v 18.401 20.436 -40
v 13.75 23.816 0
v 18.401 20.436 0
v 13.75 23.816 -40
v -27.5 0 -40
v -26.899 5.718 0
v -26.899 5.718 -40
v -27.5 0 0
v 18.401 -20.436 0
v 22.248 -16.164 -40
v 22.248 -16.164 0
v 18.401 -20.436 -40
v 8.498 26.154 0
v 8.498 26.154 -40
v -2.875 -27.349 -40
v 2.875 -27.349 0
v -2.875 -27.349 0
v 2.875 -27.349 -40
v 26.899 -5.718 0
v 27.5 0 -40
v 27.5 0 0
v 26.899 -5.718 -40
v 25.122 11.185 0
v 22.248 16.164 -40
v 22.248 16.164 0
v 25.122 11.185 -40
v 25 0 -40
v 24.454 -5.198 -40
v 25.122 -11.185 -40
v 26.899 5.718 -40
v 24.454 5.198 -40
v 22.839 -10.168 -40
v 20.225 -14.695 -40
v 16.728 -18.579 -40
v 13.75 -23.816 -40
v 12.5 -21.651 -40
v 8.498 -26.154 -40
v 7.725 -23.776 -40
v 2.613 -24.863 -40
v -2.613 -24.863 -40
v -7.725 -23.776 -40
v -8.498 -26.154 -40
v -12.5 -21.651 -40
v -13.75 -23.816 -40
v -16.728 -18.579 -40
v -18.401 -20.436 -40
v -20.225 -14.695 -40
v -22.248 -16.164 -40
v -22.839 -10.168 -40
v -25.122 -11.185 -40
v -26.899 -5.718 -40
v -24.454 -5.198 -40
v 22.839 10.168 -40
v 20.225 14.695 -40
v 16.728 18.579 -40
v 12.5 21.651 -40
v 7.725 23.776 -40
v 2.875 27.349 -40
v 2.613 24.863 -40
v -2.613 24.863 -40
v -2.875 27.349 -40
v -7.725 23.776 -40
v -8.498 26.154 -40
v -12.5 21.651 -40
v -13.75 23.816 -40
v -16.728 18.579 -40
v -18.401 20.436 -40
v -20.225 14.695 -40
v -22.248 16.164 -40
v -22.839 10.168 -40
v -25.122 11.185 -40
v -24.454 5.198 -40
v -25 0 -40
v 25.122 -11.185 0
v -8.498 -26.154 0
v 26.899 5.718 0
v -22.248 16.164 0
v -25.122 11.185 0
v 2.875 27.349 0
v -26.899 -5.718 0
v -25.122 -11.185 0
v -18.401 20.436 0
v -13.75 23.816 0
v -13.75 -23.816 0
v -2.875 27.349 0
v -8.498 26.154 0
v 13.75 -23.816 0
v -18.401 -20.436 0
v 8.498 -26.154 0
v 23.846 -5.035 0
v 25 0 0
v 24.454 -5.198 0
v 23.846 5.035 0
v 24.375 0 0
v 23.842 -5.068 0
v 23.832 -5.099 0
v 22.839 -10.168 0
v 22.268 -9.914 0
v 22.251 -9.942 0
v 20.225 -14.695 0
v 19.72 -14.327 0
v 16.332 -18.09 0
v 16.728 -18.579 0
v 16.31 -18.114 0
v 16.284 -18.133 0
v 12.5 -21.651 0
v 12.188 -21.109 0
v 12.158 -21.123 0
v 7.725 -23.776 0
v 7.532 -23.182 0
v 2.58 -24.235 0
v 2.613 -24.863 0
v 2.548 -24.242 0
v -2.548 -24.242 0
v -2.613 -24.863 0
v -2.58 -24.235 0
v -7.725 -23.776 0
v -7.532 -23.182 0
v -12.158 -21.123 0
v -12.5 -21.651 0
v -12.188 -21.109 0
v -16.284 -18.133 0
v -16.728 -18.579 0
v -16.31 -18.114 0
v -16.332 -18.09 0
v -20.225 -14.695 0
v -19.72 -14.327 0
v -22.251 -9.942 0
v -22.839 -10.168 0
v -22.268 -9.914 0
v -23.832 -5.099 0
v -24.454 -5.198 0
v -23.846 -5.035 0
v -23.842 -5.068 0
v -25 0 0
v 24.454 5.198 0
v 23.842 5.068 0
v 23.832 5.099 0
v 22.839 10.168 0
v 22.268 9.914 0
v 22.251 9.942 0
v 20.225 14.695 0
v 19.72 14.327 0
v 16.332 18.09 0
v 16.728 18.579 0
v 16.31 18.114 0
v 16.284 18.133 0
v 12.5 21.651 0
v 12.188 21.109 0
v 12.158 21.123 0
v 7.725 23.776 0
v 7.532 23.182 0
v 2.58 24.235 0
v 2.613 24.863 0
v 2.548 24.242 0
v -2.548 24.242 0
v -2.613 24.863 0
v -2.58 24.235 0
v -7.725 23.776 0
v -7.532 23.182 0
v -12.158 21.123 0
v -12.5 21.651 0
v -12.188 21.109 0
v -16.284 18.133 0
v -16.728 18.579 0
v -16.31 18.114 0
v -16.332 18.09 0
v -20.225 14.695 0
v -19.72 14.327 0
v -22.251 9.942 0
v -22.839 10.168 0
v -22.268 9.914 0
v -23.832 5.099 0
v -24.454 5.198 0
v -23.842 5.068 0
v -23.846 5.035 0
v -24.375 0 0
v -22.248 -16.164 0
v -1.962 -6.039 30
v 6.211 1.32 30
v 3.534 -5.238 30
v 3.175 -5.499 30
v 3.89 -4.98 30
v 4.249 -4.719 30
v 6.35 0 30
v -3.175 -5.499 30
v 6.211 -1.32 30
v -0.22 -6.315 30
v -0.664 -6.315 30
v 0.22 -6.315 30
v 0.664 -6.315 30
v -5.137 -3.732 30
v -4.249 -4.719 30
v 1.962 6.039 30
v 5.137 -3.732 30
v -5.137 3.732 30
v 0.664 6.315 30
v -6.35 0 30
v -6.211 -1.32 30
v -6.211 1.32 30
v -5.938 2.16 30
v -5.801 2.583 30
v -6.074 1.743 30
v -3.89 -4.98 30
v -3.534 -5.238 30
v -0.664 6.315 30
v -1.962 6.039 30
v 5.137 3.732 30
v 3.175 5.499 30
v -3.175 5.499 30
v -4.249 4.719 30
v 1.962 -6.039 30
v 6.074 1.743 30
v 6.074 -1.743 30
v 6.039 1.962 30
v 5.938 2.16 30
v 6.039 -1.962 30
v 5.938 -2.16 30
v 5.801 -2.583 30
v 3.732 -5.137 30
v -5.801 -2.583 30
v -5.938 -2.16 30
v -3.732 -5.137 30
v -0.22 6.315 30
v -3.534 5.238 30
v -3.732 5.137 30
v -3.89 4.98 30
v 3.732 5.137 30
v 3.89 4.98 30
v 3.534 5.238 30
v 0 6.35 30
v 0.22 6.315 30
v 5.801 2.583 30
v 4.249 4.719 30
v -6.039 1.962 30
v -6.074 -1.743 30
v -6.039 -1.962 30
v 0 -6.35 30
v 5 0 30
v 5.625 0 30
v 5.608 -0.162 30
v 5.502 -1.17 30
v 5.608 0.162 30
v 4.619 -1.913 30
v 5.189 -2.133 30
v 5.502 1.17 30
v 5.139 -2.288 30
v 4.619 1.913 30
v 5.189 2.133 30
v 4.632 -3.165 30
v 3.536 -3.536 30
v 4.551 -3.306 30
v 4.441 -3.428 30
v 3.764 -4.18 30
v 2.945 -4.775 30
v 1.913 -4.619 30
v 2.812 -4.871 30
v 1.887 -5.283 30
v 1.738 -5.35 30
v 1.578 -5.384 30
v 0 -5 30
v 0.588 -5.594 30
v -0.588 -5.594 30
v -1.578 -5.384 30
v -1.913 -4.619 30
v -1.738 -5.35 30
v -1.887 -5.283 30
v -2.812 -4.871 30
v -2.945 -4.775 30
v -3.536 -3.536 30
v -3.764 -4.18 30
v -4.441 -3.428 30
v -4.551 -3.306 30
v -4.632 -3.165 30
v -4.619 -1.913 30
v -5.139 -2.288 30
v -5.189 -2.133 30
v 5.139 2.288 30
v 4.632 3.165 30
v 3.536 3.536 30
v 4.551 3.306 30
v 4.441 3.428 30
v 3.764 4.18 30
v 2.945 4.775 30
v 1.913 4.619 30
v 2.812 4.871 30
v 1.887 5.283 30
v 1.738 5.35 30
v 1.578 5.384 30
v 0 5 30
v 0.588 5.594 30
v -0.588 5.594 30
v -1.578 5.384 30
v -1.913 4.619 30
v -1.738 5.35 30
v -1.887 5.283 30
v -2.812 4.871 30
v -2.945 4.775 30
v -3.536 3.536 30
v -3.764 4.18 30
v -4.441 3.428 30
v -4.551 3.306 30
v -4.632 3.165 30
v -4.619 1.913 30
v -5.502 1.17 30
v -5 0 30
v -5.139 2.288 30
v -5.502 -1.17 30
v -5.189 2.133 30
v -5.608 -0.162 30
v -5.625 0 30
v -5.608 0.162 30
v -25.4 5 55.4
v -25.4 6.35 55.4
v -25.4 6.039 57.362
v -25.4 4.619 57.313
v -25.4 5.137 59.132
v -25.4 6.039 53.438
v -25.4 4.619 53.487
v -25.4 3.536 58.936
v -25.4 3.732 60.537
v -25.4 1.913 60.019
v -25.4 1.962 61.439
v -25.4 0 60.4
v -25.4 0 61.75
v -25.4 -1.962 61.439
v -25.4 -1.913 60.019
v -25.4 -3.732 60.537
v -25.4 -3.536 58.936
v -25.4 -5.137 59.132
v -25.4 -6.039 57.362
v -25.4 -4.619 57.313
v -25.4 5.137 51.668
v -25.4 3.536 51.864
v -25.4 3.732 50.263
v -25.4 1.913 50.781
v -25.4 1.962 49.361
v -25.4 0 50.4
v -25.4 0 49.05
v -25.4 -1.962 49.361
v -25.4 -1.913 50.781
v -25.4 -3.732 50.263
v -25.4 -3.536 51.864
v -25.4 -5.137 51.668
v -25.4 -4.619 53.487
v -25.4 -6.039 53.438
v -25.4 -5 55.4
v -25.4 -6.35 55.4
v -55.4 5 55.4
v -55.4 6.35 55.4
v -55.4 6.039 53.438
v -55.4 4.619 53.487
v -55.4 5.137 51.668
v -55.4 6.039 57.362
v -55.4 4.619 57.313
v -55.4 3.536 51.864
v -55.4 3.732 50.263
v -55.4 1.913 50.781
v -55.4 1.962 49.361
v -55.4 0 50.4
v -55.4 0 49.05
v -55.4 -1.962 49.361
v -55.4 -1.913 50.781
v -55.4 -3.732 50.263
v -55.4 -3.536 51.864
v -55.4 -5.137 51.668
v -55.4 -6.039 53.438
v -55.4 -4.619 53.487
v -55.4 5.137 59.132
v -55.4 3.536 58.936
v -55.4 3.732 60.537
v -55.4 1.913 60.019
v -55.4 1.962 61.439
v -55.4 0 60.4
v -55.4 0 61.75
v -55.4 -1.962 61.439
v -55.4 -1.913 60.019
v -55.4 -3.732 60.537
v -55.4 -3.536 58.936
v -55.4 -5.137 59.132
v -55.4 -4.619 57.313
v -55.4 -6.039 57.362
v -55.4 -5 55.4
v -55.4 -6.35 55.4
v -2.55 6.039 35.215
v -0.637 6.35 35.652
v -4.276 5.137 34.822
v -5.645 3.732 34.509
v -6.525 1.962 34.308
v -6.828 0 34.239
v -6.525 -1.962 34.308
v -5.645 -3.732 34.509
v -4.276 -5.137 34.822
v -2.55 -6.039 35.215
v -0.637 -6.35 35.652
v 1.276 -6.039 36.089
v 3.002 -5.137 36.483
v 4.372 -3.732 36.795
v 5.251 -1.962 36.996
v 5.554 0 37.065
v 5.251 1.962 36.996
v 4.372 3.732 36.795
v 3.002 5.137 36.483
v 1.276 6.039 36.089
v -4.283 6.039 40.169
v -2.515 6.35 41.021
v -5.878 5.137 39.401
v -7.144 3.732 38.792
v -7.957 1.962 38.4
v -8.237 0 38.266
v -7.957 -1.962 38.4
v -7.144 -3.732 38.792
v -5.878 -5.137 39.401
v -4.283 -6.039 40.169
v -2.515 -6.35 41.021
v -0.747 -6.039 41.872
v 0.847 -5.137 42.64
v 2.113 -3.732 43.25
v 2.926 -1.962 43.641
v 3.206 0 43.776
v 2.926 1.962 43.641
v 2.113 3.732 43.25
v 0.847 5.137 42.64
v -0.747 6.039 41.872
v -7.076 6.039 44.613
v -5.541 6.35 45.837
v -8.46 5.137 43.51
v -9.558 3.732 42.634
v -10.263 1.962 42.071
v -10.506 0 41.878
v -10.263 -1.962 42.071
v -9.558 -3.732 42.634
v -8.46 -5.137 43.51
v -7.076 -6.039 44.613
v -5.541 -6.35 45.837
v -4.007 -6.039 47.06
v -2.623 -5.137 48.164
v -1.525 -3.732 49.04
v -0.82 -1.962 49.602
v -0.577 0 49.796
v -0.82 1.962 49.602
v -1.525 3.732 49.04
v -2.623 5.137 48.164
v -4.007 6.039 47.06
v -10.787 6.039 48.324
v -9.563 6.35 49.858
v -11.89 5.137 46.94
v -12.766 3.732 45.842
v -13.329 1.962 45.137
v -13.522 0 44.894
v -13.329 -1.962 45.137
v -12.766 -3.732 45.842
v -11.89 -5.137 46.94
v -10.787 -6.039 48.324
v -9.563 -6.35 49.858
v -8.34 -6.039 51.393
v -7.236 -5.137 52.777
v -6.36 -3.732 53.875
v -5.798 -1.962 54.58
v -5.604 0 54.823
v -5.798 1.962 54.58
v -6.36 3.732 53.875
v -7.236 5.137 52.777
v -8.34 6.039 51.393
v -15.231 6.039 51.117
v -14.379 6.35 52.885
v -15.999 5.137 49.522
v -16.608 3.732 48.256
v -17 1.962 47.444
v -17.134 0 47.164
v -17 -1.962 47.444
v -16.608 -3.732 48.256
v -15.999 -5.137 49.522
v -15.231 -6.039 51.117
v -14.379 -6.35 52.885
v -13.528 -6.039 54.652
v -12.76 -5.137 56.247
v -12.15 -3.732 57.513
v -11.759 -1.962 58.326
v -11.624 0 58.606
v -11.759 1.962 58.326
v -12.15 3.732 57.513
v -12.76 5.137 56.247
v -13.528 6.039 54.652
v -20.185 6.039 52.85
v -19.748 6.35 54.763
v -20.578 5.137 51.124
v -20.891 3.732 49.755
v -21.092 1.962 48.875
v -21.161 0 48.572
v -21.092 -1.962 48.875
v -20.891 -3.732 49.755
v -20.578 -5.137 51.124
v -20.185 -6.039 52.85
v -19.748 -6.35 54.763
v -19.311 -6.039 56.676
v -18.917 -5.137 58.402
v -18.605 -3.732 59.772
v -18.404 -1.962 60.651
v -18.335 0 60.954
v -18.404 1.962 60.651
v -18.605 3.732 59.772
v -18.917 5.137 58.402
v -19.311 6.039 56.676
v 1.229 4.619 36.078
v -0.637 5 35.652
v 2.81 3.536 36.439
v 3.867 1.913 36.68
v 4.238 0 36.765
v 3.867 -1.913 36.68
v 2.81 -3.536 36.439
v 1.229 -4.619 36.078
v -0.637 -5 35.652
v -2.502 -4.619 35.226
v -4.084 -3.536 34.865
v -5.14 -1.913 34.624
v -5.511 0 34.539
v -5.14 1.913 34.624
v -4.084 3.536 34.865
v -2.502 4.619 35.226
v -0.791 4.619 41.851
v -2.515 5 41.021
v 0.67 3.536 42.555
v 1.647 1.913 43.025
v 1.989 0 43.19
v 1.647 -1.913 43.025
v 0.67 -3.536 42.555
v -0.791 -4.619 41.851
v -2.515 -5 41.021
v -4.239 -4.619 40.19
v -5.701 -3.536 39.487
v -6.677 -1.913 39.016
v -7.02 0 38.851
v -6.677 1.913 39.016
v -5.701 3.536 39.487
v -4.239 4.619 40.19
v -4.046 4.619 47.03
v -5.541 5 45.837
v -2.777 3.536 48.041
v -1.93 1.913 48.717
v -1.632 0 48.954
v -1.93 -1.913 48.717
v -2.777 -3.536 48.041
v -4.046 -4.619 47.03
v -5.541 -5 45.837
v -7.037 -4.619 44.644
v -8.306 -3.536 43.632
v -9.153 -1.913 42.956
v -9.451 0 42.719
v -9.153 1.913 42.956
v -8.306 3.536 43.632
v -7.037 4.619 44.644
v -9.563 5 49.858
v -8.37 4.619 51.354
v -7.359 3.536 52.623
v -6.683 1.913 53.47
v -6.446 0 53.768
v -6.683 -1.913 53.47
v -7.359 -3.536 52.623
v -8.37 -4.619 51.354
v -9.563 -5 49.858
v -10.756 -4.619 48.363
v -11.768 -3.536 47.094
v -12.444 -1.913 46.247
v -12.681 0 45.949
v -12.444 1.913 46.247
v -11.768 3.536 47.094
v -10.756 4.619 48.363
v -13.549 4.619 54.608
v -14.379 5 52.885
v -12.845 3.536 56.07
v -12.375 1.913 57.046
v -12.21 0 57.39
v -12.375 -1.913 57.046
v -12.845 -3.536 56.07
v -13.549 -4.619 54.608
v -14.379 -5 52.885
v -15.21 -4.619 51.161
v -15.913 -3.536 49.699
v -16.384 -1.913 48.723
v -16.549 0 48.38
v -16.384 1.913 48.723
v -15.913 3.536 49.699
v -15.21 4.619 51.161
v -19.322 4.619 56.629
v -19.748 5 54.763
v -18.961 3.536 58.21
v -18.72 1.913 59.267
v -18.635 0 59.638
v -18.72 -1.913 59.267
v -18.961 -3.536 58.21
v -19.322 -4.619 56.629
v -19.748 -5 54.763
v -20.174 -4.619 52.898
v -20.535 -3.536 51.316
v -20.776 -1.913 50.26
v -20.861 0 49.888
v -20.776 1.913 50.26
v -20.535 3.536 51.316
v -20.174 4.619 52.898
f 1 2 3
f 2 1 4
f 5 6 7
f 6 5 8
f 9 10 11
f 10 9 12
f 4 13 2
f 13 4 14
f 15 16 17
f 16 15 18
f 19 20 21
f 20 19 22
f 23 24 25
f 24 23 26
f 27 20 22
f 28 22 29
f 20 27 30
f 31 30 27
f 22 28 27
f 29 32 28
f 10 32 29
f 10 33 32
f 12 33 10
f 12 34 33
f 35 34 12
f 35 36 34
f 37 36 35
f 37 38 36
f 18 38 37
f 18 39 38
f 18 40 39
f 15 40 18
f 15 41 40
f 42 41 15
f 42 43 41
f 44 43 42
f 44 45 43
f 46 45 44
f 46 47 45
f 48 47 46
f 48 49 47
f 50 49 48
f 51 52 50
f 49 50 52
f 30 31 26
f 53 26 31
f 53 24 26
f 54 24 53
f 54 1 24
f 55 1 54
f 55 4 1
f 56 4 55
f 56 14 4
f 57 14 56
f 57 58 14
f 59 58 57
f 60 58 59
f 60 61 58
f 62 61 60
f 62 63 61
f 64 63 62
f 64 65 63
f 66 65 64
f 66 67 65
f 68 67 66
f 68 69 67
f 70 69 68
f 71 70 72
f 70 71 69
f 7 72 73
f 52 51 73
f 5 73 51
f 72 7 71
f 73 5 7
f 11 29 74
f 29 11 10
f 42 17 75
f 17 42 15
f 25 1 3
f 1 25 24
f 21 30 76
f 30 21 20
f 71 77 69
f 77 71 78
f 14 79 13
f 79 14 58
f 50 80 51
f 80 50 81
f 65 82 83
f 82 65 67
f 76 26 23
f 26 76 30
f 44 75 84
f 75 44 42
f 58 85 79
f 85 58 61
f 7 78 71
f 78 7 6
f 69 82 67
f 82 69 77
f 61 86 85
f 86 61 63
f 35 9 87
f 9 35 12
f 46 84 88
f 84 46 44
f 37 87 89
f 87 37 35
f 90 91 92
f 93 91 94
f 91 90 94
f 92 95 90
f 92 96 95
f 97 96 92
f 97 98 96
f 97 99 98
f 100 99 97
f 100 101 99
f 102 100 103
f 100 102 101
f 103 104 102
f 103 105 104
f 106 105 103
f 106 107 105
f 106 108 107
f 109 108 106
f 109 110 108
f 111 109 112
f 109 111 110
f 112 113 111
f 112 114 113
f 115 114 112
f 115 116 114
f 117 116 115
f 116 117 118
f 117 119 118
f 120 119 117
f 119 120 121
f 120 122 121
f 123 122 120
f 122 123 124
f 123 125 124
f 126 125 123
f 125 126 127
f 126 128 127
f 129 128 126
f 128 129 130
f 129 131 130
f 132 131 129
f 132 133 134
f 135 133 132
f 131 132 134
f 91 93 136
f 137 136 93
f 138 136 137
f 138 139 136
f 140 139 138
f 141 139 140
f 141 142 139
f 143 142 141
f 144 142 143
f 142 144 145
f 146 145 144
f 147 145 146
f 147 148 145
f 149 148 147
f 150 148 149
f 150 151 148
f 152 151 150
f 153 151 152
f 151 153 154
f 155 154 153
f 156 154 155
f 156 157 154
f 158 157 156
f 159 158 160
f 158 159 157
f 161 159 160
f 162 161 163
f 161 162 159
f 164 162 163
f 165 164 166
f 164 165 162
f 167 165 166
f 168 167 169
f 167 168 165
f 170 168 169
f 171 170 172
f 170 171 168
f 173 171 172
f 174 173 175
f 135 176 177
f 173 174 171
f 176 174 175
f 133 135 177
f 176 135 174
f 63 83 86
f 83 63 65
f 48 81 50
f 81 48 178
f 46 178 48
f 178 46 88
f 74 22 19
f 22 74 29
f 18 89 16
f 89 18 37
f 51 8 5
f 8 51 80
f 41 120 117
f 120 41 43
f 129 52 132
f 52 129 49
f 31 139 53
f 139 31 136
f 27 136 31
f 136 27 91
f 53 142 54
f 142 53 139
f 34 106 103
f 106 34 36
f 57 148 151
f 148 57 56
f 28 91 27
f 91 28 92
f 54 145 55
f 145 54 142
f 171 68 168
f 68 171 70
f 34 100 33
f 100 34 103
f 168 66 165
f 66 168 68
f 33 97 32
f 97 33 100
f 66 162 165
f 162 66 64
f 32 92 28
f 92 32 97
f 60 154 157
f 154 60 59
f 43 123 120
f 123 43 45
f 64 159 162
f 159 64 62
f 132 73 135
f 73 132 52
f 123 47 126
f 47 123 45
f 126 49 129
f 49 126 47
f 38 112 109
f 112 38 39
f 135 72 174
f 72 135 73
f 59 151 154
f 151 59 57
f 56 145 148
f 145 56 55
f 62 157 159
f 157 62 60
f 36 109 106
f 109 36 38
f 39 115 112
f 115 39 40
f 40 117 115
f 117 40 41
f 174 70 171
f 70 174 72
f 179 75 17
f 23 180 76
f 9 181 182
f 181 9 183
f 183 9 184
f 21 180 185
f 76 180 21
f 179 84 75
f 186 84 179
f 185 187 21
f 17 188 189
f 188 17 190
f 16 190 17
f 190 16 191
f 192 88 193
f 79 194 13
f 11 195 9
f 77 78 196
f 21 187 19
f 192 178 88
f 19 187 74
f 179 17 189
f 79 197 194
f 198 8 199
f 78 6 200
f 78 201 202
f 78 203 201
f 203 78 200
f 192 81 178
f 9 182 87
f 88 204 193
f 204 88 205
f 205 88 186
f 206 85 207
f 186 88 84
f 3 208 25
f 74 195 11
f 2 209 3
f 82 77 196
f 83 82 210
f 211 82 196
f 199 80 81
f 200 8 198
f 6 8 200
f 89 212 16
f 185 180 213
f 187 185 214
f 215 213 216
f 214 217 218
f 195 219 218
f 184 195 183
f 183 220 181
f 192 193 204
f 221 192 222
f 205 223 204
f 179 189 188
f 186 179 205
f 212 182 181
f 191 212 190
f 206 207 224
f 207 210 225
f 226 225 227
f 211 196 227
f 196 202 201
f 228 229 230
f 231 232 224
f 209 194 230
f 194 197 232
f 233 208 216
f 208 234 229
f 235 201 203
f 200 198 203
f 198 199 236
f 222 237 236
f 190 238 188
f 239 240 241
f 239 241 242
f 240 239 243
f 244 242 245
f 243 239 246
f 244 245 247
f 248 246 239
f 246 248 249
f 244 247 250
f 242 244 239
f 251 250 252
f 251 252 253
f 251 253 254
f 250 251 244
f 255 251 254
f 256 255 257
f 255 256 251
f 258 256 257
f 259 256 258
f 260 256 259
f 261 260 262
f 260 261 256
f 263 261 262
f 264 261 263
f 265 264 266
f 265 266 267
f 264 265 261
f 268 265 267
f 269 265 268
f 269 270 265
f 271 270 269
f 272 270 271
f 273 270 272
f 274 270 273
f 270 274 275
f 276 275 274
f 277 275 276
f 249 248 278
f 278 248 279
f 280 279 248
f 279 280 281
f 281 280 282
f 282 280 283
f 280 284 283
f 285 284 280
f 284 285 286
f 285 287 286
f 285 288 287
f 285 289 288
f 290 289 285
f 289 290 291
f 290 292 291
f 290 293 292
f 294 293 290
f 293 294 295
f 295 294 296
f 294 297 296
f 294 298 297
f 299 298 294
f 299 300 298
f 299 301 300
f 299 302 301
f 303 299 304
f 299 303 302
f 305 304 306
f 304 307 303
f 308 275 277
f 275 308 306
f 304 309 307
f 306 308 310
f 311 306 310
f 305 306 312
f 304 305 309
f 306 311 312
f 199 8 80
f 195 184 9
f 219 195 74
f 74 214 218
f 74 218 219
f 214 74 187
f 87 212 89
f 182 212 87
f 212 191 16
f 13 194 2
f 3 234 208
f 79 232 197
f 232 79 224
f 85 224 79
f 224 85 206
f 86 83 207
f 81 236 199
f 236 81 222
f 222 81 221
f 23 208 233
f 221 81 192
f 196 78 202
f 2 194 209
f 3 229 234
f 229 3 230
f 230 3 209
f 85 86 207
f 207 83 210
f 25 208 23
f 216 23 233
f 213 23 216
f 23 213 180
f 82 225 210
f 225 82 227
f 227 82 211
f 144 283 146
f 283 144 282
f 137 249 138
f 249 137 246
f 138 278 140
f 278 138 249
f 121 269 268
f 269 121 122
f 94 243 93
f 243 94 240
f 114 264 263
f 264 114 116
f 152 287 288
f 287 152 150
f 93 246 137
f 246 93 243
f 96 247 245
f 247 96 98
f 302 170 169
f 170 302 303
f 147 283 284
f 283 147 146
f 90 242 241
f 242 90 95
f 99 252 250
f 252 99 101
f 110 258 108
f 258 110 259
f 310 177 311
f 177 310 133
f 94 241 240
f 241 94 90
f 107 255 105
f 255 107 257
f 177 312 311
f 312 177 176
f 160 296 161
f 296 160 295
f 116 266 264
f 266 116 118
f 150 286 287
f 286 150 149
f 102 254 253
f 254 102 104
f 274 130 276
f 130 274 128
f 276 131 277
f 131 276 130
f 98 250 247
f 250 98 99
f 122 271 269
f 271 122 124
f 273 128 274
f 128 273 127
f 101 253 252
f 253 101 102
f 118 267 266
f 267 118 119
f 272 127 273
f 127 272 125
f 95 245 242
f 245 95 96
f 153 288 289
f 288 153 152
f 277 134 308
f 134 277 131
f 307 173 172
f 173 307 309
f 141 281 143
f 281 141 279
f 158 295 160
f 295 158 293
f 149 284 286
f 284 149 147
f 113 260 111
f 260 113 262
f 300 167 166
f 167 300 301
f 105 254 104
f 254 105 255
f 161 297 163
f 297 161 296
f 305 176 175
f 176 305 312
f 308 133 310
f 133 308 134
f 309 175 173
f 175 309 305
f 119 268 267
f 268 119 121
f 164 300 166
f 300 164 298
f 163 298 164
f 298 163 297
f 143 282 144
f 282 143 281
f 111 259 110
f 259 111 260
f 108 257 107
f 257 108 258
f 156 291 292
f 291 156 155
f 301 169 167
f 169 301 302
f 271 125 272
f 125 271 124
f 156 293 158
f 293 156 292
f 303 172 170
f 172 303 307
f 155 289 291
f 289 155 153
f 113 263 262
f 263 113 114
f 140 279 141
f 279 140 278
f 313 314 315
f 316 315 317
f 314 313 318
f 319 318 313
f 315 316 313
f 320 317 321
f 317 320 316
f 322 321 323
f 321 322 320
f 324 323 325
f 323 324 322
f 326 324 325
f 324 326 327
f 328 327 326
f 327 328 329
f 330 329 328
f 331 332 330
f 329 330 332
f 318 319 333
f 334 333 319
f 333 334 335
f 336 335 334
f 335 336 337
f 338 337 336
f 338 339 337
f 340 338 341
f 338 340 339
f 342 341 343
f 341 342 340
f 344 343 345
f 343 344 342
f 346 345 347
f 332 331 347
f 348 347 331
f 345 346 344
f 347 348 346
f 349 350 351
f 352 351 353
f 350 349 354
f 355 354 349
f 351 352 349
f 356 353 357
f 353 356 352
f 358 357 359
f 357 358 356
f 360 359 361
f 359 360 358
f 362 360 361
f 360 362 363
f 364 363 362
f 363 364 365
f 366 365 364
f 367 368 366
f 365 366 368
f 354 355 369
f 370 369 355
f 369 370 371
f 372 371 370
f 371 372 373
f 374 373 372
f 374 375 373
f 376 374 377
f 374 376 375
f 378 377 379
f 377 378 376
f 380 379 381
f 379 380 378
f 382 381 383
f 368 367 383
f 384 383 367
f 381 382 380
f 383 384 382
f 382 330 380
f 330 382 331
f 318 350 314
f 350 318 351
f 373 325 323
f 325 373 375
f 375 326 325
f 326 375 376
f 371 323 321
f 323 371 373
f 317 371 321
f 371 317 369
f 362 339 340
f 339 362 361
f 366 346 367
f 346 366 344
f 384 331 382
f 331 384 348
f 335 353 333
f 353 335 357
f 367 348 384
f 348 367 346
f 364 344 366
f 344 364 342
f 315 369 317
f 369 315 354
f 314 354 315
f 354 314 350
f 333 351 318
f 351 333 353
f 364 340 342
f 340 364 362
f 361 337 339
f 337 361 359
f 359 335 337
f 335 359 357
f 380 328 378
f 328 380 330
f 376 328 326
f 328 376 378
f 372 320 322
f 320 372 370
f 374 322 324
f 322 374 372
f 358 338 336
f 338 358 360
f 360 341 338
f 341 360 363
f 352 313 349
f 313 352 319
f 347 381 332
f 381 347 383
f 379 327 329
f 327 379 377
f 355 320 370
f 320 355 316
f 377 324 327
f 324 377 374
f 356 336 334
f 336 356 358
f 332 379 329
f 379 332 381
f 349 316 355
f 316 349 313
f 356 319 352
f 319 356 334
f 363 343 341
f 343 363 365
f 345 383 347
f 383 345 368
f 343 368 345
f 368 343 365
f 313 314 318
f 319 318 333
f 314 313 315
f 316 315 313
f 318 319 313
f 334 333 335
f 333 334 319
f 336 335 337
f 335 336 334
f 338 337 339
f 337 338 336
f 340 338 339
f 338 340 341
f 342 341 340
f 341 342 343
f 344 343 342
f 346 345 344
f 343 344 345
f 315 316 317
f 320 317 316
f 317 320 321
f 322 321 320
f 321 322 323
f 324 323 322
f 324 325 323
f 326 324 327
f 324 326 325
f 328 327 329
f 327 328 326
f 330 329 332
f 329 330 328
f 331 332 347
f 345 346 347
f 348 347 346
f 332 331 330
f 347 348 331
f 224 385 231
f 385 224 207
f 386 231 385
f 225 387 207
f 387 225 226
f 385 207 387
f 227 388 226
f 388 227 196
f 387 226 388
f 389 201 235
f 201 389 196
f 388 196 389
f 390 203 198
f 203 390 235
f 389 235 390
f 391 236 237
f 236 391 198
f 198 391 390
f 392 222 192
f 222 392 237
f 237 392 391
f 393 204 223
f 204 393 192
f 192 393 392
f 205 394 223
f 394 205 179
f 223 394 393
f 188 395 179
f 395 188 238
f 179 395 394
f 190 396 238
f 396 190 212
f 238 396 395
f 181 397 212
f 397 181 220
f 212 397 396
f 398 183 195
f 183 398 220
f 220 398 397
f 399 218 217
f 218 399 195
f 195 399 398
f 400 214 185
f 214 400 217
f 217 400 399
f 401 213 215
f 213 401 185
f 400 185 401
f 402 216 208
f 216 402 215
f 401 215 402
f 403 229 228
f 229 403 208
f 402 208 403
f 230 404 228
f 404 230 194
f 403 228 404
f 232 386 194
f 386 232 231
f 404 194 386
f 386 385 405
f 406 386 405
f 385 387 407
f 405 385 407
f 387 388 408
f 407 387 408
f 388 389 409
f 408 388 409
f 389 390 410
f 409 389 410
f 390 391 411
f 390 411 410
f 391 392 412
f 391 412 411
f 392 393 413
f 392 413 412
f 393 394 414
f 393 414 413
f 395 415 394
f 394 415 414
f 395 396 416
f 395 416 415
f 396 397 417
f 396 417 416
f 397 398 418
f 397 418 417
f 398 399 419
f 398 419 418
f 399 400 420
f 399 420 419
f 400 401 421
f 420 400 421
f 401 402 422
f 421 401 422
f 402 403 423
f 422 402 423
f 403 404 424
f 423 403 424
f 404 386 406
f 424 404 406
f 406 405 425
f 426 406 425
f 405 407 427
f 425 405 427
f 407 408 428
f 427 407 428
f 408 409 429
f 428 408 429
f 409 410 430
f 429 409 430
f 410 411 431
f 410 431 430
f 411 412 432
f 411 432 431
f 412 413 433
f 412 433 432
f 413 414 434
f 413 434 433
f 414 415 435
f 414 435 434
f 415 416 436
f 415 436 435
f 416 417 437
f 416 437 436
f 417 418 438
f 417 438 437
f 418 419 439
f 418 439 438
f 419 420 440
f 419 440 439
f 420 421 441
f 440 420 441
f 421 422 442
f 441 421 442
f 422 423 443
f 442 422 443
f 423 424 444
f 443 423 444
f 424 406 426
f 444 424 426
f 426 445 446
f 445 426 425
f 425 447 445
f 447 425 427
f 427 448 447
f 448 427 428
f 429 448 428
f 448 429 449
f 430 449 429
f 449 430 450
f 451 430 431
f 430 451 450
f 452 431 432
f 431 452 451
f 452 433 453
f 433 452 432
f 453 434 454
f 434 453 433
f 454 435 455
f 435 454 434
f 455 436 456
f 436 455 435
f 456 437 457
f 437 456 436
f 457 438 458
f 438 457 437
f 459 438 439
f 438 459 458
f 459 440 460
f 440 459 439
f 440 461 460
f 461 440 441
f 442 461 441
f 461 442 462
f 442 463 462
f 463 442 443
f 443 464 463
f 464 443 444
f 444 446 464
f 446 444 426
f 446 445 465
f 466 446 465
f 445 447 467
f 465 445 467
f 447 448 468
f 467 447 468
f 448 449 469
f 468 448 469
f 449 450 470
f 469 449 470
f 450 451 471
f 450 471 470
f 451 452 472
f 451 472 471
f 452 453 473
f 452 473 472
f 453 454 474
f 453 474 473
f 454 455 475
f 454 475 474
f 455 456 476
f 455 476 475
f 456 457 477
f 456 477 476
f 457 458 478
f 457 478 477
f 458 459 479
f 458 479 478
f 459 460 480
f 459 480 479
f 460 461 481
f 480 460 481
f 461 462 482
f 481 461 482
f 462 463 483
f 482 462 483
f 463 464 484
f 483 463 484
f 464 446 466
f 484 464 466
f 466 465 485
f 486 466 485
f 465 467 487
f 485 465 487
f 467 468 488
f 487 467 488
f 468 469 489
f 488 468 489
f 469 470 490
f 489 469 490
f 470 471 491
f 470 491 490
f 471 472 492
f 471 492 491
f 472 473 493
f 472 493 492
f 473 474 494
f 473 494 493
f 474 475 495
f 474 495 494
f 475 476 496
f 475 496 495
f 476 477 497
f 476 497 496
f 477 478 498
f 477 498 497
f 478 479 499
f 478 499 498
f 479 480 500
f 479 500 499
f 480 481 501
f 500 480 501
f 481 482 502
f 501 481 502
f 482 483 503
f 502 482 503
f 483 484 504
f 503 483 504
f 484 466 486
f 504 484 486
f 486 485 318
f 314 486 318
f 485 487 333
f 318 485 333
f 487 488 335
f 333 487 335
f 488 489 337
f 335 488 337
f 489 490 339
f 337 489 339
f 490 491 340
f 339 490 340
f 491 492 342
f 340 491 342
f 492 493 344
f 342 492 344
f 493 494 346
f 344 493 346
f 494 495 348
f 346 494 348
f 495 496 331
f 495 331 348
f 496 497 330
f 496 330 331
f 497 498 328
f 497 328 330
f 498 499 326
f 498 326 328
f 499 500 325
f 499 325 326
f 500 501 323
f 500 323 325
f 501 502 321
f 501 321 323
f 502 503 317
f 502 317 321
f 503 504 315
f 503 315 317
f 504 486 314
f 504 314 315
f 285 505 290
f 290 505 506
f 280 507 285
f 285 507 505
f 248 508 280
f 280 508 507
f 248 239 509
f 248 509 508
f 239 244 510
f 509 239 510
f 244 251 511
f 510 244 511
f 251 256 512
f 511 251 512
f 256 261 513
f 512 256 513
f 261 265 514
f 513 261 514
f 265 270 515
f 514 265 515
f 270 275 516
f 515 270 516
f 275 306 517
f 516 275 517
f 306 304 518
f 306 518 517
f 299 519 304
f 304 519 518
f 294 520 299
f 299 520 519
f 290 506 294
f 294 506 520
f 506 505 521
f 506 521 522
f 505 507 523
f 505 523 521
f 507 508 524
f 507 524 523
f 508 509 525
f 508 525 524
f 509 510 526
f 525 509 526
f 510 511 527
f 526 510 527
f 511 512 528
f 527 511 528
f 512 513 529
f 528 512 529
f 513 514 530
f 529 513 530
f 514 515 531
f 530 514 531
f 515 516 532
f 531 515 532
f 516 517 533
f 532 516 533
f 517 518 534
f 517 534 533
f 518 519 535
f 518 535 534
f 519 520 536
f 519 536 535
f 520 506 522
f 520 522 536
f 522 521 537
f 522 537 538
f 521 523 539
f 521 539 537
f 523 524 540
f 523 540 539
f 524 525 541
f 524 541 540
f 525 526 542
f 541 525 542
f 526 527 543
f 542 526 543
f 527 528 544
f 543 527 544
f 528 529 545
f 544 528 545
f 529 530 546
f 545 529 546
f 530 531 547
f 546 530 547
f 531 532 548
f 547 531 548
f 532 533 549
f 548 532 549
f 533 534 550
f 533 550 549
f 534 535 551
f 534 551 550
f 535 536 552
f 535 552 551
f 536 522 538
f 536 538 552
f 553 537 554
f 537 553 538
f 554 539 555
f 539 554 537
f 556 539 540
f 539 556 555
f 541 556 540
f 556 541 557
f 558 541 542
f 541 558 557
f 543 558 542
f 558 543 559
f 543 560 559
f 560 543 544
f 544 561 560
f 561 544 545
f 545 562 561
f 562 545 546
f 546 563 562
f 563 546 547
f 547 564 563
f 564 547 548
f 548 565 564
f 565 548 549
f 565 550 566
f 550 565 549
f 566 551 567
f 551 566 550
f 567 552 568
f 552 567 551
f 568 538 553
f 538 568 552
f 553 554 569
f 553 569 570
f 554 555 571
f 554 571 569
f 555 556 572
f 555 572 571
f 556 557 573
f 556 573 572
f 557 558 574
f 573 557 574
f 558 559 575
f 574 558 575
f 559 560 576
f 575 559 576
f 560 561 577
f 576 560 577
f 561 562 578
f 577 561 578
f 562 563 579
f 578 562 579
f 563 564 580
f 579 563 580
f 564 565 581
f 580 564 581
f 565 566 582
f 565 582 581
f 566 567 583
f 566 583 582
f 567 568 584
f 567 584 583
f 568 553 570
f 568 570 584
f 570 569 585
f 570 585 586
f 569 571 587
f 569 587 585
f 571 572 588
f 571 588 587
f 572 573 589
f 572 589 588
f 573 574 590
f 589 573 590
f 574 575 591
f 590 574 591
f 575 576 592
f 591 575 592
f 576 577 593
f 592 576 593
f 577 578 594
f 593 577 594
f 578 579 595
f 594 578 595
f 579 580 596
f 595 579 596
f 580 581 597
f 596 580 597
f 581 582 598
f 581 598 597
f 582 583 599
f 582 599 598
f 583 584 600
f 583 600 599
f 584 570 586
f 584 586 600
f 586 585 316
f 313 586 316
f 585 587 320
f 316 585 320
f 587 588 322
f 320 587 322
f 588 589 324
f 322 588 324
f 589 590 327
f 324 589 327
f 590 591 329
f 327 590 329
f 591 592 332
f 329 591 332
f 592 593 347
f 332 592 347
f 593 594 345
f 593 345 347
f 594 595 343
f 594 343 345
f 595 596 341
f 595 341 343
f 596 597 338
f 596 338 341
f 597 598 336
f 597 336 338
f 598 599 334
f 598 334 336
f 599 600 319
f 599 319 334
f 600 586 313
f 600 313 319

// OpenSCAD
wide_tube_outer    = 55;
wide_tube_inner    = 50;
wide_tube_length   = 40;

narrow_tube_outer  = 12.7;
narrow_tube_inner  = 10;
narrow_tube_length = 30;

reduction_length   = 30;

module wide_tube() {
    difference() {
        cylinder( d = wide_tube_outer, h = wide_tube_length );
        translate([0, 0, -1])
        cylinder( d = wide_tube_inner, h = wide_tube_length+2 );
    }
}

module narrow_tube() {
    rotate([0, -90, 0])
    difference() {
        cylinder( d = narrow_tube_outer, h = narrow_tube_length );
        translate([0, 0, -1])
        cylinder( d = narrow_tube_inner, h = narrow_tube_length+2 );
    }
}

module reduction() {
    difference() {
        linear_extrude(height = reduction_length, scale = (narrow_tube_outer/wide_tube_outer), center = false)
        circle( d = wide_tube_outer );

        translate([0, 0, -1])
        linear_extrude(height = reduction_length + 2, scale = (narrow_tube_inner/wide_tube_inner), center = false)
        circle( d = wide_tube_inner );
    }
}

module L_shape() {
    translate([-2*narrow_tube_outer, 0, 0])
    rotate([90, 0, 0])
    rotate_extrude(angle = 90, convexity = 10 )
    translate([2*narrow_tube_outer, 0, 0])
    difference() {
        circle( d = narrow_tube_outer );
        circle( d = narrow_tube_inner );
    }
}

translate([0, 0, -wide_tube_length]) wide_tube();
reduction();
translate([0, 0, reduction_length]) L_shape();

translate([-2*narrow_tube_outer, 0, reduction_length+2*narrow_tube_outer]) narrow_tube();
